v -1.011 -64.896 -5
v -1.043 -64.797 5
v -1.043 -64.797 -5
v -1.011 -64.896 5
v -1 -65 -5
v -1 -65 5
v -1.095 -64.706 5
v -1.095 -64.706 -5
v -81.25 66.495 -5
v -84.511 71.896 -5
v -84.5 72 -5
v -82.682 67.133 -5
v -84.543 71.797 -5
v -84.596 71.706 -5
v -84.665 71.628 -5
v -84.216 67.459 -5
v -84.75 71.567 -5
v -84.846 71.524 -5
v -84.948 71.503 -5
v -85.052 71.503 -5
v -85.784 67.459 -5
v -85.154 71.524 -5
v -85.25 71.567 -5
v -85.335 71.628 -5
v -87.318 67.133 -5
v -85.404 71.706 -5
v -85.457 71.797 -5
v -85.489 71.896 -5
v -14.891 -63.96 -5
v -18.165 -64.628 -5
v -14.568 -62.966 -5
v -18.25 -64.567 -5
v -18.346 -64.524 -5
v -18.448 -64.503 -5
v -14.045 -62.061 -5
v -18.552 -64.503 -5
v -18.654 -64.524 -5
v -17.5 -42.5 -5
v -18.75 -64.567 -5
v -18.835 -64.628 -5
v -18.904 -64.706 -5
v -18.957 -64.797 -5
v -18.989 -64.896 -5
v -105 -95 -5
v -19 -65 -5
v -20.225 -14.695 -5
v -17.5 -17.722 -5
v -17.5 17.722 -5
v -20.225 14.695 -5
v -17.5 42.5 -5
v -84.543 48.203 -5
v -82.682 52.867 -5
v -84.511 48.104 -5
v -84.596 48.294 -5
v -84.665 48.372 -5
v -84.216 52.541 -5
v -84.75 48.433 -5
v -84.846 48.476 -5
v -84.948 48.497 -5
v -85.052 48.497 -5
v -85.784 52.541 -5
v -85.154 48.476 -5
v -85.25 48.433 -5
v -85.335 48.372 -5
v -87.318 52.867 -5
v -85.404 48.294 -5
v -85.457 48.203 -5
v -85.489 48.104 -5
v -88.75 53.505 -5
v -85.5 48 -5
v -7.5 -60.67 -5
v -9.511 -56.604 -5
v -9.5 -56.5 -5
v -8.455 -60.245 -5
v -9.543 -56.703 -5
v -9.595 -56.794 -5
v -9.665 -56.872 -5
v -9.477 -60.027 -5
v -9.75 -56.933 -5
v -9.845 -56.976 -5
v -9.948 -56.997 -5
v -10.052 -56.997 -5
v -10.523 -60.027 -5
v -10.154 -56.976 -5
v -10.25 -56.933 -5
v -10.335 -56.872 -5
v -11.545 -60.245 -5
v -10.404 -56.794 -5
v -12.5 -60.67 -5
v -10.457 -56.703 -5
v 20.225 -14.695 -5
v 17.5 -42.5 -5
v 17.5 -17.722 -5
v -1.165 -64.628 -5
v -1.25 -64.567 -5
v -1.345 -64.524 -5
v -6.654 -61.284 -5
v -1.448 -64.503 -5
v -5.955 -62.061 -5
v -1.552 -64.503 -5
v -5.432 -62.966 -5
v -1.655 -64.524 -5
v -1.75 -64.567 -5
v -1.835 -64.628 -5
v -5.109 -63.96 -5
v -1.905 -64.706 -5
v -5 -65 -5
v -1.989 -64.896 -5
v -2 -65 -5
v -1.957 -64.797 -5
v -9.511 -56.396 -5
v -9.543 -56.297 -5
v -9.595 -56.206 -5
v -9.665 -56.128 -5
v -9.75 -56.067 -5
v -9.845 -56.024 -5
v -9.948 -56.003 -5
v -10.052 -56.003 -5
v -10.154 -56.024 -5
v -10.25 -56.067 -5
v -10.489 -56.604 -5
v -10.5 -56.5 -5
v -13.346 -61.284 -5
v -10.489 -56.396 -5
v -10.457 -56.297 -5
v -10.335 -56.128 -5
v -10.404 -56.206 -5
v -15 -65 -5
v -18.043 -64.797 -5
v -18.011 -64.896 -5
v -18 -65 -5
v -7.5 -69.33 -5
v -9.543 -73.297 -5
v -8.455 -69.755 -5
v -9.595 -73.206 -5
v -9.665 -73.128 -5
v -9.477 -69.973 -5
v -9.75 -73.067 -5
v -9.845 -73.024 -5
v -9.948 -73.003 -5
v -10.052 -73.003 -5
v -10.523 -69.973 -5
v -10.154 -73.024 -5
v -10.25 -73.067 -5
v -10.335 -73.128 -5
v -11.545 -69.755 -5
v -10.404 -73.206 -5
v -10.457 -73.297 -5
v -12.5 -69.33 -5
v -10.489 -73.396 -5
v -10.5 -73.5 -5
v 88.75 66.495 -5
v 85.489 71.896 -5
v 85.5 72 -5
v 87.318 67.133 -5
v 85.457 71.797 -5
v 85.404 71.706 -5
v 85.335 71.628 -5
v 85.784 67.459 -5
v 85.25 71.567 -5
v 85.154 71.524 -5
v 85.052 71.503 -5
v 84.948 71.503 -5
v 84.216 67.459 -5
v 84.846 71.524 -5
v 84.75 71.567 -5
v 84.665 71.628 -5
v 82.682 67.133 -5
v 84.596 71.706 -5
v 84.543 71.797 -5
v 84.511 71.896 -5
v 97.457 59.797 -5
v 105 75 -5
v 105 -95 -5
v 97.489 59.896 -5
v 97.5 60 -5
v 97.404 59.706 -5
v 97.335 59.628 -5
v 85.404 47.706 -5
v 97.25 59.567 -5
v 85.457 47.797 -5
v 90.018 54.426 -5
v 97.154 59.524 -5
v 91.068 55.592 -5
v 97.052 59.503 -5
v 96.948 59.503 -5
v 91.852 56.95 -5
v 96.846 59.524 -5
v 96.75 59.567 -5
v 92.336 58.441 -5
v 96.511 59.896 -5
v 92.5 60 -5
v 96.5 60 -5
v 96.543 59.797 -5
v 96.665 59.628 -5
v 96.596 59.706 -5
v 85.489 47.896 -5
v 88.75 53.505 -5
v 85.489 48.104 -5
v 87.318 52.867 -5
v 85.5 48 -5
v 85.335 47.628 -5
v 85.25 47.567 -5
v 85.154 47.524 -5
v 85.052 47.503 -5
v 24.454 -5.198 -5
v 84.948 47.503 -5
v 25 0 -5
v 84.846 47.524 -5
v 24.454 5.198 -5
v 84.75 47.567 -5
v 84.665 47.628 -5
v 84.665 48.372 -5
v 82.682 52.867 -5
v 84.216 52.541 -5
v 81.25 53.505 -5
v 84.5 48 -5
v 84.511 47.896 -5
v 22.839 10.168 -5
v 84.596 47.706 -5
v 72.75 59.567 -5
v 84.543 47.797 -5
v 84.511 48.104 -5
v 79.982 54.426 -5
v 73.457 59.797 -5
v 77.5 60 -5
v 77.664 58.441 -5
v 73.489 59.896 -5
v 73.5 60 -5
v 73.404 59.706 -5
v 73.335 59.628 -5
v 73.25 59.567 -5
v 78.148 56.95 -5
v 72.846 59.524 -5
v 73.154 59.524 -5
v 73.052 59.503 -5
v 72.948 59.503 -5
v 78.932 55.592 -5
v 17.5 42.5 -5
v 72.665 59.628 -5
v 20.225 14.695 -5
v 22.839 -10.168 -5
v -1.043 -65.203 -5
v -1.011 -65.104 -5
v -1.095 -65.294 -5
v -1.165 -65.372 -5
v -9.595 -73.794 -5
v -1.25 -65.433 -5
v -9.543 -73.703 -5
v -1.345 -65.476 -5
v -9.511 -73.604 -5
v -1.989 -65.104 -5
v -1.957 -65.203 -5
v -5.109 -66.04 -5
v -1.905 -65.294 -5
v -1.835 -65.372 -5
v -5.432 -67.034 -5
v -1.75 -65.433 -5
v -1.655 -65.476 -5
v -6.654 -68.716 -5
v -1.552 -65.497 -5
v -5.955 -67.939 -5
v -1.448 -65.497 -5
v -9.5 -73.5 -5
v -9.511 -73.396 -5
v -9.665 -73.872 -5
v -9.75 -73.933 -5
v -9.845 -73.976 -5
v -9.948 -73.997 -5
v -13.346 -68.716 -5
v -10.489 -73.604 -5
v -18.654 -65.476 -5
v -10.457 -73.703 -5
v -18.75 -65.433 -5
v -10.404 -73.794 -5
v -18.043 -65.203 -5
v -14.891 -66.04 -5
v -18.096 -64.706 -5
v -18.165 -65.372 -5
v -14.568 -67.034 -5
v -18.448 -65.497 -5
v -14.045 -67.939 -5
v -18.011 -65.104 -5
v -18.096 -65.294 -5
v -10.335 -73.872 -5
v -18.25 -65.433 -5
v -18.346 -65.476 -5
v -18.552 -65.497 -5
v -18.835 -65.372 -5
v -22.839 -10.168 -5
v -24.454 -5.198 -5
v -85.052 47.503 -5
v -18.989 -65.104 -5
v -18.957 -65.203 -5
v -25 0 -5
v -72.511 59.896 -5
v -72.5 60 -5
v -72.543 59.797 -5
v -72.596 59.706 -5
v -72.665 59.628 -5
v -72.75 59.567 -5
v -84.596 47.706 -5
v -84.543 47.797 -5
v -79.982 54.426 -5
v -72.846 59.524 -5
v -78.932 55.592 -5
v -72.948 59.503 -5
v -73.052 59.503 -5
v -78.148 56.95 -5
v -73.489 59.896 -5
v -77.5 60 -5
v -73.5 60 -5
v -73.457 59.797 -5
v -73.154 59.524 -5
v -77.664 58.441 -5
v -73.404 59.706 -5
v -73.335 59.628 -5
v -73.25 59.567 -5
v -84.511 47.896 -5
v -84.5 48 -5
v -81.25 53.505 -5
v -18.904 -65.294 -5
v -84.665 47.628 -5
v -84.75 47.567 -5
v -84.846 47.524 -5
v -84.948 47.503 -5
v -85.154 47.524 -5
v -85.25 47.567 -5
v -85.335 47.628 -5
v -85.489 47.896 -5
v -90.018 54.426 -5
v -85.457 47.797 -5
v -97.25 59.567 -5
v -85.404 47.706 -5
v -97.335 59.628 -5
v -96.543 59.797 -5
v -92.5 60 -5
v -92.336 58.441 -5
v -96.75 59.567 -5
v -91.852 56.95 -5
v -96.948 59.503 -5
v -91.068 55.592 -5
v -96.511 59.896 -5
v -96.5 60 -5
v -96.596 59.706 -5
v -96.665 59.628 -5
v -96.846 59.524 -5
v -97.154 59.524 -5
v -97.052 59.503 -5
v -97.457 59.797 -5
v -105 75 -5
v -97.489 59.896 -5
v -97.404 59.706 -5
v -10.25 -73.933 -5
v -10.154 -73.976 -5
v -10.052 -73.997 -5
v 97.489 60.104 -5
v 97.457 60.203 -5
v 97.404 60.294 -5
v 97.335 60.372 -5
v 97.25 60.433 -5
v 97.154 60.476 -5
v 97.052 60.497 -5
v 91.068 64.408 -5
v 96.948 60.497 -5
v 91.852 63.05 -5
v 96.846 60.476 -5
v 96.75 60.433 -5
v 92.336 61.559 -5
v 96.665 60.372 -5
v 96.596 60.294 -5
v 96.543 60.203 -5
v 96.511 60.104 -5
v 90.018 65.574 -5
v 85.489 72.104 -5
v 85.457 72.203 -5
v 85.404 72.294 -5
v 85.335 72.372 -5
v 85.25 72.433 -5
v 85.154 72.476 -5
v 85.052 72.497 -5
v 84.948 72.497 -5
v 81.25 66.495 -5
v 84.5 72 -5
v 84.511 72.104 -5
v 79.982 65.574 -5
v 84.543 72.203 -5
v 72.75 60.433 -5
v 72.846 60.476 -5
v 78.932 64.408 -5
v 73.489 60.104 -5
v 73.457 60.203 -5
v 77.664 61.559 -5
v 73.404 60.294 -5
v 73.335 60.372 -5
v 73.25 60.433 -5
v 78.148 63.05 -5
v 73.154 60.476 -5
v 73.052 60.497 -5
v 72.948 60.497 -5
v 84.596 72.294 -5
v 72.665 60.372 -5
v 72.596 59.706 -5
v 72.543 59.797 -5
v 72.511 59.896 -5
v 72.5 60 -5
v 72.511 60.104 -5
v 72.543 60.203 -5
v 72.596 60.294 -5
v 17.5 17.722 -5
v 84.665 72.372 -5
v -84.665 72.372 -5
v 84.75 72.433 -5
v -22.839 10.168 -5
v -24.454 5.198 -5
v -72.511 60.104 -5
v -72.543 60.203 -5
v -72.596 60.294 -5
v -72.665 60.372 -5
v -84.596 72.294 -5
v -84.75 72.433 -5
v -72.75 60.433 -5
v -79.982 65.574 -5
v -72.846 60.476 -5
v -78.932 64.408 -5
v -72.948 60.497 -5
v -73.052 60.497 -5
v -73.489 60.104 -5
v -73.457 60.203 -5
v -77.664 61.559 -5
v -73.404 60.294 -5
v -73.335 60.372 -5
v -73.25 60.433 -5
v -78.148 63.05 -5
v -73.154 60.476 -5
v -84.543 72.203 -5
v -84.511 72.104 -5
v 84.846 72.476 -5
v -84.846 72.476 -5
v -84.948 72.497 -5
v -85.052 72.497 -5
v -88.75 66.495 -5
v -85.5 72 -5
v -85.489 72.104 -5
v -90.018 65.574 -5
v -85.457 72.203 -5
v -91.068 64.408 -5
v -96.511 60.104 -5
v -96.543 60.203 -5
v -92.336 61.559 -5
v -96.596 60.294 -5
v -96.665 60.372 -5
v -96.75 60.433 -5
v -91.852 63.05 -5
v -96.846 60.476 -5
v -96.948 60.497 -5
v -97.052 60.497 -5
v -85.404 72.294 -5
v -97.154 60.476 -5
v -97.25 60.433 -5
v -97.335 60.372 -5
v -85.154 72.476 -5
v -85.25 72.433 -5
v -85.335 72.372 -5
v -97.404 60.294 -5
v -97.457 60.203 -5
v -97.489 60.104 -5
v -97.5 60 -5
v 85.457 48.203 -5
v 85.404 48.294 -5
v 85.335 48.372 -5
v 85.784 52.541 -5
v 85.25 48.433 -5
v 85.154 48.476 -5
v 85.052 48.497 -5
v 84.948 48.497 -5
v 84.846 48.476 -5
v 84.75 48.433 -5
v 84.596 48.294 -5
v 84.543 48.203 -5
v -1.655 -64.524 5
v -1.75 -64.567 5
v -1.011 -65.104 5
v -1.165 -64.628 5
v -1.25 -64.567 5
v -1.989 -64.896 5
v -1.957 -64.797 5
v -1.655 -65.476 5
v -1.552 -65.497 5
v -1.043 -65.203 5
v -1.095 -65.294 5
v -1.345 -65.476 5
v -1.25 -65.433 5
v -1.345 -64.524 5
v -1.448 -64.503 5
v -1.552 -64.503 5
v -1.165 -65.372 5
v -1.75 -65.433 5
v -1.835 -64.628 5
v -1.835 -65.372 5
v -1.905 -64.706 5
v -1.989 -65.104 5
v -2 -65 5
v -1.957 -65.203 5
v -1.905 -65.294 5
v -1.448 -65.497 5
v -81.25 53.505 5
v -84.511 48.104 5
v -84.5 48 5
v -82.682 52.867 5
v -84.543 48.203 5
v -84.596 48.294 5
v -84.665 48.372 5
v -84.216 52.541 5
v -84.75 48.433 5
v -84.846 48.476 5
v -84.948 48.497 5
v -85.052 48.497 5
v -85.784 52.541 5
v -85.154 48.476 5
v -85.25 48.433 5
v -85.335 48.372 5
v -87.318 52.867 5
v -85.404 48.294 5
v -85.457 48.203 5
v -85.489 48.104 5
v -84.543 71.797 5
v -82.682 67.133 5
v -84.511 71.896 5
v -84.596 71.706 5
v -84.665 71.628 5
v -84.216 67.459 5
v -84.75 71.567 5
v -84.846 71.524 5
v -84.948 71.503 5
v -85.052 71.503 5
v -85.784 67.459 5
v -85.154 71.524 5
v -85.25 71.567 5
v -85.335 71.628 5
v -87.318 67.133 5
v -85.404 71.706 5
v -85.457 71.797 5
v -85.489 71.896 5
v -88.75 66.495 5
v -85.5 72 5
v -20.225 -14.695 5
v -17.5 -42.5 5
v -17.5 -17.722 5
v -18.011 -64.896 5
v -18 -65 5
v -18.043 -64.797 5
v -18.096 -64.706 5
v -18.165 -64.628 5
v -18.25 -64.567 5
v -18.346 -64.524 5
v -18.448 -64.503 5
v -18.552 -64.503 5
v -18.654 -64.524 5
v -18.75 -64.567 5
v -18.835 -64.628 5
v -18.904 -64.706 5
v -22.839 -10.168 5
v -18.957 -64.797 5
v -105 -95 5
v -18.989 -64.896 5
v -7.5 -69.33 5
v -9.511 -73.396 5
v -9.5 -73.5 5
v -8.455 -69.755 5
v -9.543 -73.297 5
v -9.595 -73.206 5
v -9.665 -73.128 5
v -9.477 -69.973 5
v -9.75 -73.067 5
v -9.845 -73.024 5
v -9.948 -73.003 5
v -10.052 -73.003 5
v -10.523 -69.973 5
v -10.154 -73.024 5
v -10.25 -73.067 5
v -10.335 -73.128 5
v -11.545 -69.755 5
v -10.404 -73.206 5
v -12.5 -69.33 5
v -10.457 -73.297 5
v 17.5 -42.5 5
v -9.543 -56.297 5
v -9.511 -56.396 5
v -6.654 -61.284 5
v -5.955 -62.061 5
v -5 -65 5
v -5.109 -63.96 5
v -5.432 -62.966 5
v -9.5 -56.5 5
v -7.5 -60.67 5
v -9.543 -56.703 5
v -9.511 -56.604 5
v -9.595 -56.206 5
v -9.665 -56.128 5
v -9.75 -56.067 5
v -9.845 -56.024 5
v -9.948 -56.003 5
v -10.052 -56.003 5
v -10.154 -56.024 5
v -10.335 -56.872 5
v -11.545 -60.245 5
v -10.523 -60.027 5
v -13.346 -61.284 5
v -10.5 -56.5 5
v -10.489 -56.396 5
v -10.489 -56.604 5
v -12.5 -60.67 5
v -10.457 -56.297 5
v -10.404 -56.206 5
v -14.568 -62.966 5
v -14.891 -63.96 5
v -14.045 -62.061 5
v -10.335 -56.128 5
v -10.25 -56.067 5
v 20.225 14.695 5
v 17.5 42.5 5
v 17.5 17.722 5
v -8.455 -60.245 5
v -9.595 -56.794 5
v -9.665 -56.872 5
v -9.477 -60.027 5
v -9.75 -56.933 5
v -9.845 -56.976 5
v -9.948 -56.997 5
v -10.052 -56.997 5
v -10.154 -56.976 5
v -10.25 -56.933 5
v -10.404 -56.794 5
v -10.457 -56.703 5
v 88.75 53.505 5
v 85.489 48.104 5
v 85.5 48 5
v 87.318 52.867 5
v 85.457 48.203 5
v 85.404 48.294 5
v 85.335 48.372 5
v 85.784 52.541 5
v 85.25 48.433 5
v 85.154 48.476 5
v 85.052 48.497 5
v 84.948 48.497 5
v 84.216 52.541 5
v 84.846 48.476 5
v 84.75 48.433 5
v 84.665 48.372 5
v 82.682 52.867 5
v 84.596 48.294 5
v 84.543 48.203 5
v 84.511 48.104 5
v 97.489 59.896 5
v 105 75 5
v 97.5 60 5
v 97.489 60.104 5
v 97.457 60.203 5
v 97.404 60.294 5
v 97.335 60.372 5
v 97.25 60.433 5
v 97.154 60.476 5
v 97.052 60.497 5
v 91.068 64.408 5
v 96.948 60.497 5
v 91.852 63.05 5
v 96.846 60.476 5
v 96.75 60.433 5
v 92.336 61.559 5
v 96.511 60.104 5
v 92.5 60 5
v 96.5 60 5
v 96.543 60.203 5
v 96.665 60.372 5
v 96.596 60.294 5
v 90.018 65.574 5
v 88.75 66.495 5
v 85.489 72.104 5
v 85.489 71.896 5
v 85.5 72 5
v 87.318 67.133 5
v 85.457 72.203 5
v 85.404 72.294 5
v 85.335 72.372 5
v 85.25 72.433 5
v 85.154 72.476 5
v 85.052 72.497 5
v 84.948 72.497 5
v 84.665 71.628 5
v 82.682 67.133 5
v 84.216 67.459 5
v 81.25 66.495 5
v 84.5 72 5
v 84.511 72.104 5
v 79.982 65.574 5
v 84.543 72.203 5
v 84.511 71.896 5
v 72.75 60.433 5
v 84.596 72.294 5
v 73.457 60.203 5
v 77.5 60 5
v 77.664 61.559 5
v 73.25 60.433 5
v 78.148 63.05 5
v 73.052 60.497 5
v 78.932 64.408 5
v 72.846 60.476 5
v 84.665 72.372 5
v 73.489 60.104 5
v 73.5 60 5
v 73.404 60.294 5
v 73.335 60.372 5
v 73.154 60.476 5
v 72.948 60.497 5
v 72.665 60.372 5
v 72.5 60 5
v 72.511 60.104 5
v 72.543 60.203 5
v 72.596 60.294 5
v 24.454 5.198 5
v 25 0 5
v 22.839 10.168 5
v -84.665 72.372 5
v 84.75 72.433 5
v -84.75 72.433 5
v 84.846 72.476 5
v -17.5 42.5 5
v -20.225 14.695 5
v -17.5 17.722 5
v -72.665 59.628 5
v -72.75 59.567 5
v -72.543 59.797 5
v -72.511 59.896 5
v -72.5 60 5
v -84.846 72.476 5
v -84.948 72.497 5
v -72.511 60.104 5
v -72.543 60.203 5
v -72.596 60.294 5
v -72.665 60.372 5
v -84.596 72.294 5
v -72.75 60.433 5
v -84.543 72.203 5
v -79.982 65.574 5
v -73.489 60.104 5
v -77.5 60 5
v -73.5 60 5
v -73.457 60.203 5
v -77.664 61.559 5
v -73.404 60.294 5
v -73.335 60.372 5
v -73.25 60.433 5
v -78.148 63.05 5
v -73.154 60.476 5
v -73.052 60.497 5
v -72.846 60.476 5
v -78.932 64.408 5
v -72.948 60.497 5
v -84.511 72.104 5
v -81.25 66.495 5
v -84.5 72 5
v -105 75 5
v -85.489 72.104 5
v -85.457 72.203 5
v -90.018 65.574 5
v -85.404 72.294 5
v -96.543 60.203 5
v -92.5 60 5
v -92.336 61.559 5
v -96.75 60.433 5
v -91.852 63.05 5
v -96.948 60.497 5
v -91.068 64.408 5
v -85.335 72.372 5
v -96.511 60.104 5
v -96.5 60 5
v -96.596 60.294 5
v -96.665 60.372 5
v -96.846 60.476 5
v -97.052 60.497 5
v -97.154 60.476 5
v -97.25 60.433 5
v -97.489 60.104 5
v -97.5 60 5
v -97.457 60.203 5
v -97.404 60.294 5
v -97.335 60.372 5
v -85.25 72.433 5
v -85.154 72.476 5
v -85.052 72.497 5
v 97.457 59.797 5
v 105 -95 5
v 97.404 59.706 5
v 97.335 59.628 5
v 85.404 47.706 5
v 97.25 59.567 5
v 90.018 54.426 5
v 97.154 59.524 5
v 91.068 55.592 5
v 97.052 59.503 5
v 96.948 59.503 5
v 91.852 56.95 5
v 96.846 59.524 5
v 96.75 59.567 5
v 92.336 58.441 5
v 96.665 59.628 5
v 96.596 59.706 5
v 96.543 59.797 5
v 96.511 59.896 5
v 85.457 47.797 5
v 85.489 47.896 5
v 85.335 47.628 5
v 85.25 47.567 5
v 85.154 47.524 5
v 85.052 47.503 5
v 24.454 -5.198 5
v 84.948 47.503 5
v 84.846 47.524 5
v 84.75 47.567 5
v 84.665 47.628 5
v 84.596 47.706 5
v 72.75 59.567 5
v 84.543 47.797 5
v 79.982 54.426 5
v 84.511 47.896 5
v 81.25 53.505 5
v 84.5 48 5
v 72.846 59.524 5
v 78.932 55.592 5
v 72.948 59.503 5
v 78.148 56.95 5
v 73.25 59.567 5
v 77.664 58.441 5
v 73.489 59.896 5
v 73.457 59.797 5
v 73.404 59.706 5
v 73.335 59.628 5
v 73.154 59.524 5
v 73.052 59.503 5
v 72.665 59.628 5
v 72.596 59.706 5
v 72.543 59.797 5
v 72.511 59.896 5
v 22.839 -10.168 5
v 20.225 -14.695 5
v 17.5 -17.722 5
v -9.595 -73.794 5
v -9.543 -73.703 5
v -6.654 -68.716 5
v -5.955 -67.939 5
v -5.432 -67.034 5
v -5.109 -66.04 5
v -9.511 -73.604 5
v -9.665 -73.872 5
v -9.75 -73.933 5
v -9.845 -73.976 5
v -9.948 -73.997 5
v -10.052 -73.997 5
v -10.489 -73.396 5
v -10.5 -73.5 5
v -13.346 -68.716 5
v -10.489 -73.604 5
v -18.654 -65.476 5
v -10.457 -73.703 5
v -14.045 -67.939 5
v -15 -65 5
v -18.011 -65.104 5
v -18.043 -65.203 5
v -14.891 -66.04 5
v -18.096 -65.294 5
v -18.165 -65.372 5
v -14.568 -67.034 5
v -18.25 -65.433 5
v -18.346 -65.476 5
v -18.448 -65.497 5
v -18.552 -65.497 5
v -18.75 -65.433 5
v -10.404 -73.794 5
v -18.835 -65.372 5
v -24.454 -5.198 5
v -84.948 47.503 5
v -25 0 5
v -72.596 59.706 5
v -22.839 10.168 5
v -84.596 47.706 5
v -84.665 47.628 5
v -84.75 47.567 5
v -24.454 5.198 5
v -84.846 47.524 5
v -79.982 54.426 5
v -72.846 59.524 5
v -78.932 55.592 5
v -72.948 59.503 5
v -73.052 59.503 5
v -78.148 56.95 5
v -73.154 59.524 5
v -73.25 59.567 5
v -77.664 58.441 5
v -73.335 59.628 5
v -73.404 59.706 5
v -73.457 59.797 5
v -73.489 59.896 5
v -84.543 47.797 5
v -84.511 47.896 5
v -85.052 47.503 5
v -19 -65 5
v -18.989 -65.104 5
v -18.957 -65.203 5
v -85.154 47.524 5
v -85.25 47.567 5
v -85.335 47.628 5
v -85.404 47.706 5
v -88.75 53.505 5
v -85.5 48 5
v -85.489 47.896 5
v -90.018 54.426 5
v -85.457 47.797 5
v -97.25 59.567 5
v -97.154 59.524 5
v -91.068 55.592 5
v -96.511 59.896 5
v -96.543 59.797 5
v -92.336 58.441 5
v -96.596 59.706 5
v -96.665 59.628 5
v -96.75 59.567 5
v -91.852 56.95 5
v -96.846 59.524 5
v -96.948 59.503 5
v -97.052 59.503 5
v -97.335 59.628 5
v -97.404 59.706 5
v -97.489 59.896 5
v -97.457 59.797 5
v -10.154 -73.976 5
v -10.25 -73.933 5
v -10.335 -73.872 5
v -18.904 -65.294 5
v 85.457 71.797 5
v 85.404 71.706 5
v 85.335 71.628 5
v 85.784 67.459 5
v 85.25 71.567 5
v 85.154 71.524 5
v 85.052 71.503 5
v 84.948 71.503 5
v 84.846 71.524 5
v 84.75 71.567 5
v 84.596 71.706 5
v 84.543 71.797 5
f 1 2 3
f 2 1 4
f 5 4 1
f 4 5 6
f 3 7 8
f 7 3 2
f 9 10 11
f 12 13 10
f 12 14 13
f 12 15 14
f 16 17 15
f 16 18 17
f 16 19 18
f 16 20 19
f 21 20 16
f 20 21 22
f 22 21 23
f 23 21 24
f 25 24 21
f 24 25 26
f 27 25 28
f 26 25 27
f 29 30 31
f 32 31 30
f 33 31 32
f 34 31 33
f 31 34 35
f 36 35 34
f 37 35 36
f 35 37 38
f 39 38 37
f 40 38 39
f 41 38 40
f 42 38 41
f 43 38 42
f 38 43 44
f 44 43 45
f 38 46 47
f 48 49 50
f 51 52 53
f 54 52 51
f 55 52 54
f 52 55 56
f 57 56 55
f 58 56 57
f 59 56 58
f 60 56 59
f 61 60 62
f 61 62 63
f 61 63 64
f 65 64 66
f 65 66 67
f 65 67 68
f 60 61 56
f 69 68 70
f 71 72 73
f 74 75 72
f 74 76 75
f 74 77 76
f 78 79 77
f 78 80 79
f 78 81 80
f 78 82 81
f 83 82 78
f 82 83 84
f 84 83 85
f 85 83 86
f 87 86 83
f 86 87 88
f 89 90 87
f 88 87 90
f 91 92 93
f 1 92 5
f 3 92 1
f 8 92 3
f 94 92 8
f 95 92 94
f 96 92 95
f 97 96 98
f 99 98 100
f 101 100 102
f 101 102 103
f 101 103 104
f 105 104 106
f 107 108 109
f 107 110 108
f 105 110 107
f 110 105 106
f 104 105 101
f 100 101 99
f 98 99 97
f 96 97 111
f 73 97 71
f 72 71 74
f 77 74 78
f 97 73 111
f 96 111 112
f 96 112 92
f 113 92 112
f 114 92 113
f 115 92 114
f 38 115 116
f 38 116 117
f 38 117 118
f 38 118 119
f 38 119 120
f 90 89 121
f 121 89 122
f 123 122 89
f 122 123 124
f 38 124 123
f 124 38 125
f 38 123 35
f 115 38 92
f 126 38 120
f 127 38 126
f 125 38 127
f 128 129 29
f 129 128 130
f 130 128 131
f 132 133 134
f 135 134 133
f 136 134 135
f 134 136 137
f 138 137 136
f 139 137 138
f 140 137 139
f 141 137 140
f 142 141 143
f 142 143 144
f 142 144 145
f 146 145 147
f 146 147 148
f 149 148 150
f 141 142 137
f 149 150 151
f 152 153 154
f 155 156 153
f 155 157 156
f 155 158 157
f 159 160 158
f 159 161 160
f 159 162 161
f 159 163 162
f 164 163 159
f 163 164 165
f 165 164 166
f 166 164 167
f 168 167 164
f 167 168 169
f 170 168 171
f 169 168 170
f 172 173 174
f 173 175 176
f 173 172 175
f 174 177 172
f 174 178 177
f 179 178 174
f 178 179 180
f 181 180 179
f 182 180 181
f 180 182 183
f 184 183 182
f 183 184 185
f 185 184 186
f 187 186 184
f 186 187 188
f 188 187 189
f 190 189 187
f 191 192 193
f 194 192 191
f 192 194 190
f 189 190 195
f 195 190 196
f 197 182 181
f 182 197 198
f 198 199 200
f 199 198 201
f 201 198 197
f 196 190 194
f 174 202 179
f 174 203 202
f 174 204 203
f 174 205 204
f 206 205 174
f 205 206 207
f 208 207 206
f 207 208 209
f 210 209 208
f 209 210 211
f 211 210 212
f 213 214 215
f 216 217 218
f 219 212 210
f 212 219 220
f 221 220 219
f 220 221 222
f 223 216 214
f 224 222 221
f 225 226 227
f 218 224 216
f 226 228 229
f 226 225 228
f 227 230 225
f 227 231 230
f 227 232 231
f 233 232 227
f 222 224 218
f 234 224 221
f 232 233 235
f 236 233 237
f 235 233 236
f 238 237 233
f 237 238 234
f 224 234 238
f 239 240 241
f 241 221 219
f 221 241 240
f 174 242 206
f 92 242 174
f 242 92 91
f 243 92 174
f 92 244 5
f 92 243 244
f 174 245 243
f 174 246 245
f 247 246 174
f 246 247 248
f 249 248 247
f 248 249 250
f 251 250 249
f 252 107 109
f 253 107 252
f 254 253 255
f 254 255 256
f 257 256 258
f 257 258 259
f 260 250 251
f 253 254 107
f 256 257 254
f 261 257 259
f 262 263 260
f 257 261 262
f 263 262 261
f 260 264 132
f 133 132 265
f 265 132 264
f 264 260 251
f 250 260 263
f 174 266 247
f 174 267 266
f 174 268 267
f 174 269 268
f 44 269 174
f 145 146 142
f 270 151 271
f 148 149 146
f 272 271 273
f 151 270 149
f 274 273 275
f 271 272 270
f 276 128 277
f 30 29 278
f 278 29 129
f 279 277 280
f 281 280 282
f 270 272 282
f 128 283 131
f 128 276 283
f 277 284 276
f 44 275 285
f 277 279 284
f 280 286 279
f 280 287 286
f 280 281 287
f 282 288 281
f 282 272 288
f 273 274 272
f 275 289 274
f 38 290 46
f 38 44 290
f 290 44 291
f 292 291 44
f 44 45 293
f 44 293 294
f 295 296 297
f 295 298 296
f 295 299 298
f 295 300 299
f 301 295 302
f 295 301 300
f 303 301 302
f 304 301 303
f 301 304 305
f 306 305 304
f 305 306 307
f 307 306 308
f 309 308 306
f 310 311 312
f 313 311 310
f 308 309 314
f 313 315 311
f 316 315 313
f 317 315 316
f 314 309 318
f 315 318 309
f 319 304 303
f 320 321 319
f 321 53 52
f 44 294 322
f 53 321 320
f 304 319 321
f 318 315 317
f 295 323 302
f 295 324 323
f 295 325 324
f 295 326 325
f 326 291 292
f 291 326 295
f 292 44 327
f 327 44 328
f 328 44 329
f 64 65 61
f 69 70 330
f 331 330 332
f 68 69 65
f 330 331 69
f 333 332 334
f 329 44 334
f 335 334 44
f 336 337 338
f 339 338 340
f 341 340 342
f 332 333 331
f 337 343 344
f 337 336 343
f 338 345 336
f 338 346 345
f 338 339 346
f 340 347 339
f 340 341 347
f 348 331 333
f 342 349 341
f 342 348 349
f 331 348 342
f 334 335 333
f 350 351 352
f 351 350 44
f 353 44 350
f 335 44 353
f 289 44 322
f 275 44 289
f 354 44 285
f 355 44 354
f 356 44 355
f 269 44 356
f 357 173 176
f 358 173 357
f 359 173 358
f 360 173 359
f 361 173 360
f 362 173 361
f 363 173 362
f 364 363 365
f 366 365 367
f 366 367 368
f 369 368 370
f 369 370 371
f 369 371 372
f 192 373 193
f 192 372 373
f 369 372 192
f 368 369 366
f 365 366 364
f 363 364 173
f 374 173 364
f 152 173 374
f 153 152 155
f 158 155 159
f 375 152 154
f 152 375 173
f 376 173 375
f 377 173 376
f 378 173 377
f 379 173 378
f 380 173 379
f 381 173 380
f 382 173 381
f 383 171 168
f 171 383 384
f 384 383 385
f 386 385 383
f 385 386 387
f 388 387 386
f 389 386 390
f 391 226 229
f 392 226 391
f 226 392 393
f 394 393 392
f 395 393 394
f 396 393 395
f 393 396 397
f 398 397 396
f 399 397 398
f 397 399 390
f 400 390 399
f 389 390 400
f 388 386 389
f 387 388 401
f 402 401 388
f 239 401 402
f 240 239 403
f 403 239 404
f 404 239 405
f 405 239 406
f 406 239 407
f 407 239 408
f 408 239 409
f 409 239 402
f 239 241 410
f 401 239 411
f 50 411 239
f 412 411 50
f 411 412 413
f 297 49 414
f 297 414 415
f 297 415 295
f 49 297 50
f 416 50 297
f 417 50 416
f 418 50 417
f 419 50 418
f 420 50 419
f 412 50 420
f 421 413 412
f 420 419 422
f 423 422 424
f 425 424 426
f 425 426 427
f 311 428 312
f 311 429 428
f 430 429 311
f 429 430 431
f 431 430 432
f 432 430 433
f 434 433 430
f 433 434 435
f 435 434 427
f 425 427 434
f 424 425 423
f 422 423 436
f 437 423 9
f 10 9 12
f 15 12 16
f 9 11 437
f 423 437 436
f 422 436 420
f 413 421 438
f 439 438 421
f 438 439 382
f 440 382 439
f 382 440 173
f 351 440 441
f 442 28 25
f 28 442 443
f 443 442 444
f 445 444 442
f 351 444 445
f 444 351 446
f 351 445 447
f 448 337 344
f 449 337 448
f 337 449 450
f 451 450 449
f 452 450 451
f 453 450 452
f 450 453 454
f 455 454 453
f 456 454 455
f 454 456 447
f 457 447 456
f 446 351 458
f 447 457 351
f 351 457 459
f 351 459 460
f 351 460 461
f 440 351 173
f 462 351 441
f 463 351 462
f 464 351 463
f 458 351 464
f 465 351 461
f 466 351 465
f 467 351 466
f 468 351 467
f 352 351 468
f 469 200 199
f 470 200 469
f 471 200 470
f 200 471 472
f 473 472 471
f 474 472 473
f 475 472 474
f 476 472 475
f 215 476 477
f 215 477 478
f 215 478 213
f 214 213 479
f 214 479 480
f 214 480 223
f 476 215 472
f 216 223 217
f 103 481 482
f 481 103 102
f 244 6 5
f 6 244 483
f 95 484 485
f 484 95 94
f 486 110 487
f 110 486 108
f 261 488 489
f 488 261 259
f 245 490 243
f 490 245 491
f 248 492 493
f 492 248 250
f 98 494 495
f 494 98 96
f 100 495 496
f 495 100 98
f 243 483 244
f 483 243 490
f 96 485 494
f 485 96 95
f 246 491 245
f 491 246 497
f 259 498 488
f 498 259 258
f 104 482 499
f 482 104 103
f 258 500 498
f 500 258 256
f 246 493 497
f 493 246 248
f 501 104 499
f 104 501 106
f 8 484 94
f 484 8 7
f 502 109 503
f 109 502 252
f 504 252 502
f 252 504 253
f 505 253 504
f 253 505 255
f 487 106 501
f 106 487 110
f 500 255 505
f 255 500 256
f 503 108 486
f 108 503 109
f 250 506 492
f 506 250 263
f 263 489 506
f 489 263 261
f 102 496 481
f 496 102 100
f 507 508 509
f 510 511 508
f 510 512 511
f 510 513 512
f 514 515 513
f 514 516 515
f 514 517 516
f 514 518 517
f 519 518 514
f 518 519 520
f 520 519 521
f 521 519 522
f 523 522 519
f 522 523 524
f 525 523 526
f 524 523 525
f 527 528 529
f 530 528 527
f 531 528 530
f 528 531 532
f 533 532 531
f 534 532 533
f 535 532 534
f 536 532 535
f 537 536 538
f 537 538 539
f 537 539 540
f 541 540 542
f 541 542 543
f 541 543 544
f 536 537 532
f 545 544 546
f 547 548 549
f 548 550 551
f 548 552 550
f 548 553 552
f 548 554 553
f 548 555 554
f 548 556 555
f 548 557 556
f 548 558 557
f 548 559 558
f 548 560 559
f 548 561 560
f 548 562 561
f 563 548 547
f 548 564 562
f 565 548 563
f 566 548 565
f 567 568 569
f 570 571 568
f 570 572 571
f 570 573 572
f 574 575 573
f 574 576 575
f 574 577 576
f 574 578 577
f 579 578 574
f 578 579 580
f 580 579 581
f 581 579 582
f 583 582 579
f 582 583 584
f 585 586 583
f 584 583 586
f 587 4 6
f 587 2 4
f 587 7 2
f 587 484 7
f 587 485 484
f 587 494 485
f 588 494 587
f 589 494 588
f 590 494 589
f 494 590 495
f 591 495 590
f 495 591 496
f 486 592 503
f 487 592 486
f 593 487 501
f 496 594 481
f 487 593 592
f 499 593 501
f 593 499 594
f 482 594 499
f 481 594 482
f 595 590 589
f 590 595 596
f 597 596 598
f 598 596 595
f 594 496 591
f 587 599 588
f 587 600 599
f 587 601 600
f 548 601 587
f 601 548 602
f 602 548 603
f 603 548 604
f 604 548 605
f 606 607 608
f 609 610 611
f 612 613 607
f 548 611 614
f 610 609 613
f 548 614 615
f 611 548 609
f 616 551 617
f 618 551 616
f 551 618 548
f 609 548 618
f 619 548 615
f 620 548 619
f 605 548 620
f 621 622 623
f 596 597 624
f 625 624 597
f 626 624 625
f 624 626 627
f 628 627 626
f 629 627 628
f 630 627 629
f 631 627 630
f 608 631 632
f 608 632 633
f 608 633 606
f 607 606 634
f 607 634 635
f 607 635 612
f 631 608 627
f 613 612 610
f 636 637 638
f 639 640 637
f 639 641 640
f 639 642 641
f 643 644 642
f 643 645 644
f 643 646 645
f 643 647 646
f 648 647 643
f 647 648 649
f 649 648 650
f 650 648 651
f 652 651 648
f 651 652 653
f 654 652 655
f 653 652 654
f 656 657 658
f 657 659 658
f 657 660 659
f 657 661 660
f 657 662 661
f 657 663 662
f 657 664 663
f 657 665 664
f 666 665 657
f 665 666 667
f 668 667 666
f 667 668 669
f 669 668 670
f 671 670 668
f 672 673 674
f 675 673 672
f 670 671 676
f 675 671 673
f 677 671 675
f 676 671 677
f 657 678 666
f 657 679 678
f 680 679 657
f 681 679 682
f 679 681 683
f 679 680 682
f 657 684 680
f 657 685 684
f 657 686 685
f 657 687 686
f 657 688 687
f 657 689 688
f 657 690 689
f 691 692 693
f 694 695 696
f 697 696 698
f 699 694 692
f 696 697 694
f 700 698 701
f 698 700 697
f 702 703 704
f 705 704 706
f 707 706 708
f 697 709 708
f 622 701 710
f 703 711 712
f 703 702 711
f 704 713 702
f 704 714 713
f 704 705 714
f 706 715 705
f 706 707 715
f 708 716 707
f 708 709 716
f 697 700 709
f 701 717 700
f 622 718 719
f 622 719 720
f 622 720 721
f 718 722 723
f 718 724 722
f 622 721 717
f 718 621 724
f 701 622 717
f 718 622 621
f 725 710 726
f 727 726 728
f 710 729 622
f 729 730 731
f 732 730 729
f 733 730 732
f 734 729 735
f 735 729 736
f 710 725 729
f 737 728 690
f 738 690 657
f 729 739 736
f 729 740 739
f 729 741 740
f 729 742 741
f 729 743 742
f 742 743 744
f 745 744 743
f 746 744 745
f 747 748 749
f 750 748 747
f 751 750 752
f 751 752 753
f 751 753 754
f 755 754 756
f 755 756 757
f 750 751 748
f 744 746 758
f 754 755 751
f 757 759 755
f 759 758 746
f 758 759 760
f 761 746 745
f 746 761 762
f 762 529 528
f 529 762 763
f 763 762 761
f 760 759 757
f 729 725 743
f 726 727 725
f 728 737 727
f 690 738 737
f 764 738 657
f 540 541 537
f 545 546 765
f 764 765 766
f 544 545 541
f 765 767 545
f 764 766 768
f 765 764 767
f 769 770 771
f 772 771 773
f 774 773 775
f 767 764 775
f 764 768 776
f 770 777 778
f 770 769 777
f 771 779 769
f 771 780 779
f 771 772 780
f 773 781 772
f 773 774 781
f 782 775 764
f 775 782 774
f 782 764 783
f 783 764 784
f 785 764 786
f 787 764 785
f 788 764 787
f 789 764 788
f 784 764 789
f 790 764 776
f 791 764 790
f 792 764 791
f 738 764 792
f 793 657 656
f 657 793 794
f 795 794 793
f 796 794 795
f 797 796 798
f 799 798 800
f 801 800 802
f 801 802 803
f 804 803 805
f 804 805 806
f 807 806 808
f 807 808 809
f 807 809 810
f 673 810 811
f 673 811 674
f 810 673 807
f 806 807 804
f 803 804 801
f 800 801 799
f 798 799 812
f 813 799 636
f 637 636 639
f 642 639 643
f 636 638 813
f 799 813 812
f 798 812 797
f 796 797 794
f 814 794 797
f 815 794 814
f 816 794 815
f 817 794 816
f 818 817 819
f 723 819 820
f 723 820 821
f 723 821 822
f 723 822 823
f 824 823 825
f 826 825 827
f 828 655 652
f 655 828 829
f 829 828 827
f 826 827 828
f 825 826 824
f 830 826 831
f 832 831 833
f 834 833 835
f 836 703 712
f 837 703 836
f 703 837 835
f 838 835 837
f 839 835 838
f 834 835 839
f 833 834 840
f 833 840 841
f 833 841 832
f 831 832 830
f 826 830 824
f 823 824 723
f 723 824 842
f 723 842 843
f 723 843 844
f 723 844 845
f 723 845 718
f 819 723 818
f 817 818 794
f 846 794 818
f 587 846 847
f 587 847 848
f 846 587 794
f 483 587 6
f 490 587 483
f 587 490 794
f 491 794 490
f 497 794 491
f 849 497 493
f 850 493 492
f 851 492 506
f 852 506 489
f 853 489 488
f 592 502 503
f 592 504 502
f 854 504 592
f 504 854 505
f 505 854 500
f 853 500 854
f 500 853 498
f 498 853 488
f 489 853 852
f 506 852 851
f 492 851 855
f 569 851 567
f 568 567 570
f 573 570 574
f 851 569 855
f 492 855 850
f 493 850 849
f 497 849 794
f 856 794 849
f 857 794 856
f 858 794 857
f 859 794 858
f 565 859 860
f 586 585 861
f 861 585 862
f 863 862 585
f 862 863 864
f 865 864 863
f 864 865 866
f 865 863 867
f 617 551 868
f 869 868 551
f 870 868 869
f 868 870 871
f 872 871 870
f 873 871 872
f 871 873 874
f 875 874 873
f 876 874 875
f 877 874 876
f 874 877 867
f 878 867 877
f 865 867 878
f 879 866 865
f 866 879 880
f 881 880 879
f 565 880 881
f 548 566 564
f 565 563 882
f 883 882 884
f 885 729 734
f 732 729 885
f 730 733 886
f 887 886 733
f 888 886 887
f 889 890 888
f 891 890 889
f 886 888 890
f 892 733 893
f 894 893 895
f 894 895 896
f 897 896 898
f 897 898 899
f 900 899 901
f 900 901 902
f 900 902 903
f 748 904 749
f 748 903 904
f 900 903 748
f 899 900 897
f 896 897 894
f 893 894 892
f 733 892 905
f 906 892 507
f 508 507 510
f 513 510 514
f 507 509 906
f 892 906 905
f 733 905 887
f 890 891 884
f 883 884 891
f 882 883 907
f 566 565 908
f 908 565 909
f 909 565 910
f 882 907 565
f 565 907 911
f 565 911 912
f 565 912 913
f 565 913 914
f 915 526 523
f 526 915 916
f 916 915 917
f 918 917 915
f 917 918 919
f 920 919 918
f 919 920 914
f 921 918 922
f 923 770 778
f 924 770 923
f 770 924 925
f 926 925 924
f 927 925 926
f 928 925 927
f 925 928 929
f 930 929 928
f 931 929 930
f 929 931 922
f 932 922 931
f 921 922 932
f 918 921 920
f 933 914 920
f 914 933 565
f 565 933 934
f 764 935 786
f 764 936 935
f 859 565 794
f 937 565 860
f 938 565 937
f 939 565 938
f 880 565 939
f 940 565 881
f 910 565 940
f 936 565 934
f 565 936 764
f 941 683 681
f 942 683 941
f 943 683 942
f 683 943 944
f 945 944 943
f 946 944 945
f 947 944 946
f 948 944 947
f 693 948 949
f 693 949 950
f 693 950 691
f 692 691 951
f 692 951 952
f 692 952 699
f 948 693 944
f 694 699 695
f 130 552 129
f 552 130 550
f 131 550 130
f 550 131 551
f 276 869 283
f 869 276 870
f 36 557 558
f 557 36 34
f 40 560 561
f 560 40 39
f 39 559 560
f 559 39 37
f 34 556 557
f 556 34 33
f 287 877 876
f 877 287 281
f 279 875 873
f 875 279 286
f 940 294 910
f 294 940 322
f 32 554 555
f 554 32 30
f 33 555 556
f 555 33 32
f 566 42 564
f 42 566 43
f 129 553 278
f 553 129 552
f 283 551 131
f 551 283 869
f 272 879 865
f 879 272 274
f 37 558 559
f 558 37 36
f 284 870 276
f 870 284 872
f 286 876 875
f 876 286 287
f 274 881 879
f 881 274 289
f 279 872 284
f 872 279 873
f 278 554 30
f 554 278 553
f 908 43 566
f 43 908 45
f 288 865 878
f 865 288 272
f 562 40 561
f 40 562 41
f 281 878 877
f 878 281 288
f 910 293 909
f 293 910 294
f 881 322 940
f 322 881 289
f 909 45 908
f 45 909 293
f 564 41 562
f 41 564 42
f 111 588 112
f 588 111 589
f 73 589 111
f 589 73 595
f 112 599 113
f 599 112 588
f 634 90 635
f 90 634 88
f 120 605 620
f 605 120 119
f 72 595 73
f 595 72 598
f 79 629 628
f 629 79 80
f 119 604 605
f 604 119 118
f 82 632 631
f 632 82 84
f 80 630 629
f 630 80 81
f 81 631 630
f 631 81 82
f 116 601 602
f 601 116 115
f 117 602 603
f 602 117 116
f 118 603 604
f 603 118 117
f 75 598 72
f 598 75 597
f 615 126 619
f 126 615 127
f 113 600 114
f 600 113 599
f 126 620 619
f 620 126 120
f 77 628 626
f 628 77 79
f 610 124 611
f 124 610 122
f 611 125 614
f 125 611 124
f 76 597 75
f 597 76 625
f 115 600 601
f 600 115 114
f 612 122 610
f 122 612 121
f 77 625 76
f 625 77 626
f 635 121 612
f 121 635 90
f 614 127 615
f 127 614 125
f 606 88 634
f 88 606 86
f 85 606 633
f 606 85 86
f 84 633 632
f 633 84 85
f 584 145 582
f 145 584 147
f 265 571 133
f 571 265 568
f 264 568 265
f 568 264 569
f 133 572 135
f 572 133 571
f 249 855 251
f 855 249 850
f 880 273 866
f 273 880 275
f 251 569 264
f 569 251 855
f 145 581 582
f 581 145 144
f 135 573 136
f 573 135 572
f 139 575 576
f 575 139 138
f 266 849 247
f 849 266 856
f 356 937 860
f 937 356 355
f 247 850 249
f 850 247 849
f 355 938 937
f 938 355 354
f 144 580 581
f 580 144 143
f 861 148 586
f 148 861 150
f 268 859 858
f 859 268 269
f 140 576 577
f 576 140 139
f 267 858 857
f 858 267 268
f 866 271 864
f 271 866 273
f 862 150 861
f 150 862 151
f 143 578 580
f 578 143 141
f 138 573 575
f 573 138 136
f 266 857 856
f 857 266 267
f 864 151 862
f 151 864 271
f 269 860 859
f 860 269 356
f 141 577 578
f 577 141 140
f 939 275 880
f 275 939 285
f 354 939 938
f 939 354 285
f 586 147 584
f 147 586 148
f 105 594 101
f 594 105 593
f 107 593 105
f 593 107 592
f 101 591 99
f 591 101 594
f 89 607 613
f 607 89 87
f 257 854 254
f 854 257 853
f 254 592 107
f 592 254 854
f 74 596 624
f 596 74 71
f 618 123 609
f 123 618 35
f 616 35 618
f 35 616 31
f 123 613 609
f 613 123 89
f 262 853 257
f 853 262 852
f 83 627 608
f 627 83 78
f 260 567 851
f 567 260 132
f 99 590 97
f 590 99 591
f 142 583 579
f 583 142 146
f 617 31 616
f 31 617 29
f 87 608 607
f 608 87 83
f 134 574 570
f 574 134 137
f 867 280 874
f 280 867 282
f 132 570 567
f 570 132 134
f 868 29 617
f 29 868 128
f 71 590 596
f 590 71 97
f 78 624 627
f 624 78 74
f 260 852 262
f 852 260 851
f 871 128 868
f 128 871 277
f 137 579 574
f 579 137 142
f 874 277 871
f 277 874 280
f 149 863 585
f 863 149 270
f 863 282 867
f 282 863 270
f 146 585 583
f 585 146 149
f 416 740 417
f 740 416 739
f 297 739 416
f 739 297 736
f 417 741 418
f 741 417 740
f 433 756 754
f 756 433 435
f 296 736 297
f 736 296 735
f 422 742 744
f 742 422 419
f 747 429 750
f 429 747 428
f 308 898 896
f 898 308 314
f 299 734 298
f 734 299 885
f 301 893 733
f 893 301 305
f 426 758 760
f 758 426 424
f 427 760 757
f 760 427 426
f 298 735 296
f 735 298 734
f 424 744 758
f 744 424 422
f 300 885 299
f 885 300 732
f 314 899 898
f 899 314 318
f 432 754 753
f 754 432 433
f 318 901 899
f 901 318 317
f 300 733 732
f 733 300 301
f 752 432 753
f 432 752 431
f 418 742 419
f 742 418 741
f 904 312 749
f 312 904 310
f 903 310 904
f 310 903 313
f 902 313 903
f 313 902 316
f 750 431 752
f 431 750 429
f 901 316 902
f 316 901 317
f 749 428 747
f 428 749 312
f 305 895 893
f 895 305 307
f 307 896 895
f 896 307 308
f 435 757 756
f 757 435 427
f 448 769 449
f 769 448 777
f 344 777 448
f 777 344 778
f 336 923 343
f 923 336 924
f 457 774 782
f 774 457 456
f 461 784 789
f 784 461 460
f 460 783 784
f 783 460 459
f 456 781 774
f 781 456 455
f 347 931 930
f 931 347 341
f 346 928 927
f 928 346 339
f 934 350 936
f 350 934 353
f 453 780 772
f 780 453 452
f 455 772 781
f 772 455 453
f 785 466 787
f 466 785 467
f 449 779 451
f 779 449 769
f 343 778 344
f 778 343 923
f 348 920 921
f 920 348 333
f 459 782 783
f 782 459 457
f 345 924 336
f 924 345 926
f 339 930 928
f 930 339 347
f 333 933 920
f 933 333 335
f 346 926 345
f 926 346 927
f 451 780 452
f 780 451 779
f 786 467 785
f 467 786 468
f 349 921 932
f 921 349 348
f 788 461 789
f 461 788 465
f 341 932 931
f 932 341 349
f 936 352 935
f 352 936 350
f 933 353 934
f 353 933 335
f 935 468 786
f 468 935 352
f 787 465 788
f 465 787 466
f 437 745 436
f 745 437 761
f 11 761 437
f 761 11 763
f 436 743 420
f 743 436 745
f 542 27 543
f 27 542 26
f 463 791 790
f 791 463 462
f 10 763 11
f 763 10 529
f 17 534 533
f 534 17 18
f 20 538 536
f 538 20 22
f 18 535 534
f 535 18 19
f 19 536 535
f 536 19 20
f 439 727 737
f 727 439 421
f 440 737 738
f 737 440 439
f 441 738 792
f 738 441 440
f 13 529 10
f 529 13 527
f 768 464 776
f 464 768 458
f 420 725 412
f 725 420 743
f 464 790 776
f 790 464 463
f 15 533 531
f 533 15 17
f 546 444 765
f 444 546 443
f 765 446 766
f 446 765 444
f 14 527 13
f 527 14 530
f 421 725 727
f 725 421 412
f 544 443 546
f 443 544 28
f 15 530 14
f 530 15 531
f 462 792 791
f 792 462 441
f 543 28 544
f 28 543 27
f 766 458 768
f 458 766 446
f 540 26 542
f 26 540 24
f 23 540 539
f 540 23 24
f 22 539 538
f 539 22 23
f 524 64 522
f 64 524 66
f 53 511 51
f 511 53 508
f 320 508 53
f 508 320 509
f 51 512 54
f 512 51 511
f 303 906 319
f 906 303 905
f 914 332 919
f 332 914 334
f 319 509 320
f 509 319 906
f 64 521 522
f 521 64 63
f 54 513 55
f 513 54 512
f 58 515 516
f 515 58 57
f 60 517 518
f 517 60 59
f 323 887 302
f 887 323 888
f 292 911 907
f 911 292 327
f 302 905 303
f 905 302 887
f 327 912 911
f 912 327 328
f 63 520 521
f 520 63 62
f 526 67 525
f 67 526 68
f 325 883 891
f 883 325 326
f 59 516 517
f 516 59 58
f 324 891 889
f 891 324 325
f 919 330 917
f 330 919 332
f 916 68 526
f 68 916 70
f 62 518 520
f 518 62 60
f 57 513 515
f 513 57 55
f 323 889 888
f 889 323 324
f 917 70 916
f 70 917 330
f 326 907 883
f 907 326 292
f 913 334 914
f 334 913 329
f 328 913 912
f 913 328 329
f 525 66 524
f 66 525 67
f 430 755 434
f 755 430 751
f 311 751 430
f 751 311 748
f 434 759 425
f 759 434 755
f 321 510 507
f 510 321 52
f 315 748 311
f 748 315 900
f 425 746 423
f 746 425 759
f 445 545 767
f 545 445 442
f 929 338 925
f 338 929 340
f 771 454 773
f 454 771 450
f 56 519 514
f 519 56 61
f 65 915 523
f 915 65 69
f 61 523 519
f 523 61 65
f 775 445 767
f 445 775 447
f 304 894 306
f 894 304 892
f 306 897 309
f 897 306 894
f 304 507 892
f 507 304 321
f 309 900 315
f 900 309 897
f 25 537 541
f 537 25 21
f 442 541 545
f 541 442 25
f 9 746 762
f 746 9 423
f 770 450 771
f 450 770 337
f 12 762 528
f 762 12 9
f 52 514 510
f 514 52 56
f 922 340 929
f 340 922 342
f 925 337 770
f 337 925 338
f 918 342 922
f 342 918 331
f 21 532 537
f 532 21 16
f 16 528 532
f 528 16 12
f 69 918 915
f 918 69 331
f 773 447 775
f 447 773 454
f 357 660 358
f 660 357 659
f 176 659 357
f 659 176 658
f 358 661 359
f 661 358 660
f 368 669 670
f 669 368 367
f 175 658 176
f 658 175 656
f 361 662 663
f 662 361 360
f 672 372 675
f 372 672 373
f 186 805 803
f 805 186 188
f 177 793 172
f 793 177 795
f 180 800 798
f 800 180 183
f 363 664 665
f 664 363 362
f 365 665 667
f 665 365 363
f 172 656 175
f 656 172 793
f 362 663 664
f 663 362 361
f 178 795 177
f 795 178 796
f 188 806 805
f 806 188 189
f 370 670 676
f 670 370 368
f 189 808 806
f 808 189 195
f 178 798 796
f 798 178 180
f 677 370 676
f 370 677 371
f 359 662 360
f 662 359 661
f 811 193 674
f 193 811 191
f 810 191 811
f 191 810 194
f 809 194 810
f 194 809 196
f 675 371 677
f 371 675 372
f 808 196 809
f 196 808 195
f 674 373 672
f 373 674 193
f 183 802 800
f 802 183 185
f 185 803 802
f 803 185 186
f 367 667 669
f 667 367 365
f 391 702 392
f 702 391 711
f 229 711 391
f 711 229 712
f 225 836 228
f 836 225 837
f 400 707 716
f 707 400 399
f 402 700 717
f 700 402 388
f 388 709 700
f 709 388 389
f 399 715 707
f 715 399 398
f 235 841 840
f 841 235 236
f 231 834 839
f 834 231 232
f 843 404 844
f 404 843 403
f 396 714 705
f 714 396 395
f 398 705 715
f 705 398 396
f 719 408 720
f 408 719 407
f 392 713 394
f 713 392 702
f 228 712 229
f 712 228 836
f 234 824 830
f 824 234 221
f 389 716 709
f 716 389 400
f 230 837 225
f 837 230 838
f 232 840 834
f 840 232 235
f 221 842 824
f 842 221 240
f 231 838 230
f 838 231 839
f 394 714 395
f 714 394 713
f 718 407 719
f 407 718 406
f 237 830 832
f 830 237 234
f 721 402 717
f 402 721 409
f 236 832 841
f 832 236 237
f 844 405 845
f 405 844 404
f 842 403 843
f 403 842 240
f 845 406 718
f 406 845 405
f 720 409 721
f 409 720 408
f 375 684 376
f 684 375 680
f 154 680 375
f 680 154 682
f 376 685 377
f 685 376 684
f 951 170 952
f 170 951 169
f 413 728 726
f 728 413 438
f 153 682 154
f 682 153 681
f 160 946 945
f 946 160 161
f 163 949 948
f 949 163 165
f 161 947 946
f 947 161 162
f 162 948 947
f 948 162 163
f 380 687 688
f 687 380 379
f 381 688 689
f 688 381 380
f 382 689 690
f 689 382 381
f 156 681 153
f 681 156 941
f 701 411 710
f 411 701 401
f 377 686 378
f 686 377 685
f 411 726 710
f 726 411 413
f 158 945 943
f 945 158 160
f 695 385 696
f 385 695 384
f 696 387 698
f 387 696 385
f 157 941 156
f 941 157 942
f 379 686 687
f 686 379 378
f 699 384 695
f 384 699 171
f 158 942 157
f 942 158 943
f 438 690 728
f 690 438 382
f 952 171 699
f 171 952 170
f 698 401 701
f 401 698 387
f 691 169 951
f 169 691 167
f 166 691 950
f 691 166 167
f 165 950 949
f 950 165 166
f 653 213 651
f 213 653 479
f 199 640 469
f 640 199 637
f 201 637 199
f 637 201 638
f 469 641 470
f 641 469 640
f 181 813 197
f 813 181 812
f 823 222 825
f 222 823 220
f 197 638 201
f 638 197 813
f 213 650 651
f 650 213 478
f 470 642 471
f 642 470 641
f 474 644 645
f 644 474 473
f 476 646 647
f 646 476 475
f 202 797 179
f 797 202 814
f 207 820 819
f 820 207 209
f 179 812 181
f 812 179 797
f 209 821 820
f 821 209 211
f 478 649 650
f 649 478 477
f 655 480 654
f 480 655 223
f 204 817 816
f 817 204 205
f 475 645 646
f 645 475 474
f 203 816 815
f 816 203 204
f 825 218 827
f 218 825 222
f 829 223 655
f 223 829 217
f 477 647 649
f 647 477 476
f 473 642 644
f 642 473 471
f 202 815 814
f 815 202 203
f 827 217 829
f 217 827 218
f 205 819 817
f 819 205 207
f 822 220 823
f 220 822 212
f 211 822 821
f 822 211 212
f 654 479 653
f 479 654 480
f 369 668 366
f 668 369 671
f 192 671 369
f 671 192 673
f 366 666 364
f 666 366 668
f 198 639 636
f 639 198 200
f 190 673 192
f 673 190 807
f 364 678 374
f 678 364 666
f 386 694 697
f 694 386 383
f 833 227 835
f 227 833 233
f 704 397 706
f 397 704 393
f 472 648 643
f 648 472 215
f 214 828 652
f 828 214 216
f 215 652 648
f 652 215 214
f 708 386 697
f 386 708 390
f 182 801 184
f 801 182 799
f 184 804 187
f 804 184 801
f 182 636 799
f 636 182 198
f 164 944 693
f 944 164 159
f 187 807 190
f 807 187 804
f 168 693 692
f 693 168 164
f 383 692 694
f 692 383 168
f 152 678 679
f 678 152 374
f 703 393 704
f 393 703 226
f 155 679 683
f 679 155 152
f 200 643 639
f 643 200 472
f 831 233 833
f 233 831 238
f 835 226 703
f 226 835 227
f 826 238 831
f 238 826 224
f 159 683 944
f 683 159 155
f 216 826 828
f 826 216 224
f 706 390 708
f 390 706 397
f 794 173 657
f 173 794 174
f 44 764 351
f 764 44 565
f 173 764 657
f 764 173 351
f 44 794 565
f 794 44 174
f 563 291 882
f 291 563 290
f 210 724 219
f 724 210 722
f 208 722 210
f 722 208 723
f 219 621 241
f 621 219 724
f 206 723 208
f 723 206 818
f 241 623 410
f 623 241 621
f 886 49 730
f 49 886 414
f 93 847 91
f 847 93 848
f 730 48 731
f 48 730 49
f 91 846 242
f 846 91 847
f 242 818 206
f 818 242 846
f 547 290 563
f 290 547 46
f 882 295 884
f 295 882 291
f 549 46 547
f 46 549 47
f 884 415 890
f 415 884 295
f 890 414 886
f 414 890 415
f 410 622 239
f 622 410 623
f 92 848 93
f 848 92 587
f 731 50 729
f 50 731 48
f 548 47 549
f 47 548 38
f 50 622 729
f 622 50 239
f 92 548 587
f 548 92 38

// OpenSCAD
// Multi_Tissue_Recording Stage v1
// Jack F. Murphy <me@jackmurphy.nyc>
// https://github.com/teammurphy/Multi_Tissue_CAD

// Smoothness
$fn = 30;

// Stage Dimensions
stage_len=210;
stage_width=170;
stage_thickness=10;

// Hole Dimensions
hole_diam=50;
hole_len=85;
hole_width=30;
lin_bearing=15;
threaded=10;
pilot_rad=1;

difference(){
  translate([0, -10, 0])  
    cube([stage_len, stage_width, stage_thickness], center=true);

  // Circular Gap
  translate([0, 25, 0])
    cylinder(d=hole_diam, h=stage_thickness, center=true);

  // Rectangular Gap
  cube([hole_width, hole_len, stage_thickness], center=true);

  // Threaded Hole
  translate([-10, -65, 0]){
    cylinder(d=threaded, h=stage_thickness, center=true);
    pilot_holes(8.5);
  }

  // Linear Bearing Holes
  translate([-85, 60, 0]) {
    cylinder(d=lin_bearing, h=stage_thickness, center=true);
    pilot_holes(12);
  }
  translate([85, 60, 0]) {
    cylinder(d=lin_bearing, h=stage_thickness, center=true);
    pilot_holes(12);
  }
}

// Create 4 pilot holes evenly spaced around the hole.
module pilot_holes(radius){
  translate([radius, 0, 0])
    cylinder(d=pilot_rad, h=stage_thickness, center=true);
  translate([-1*radius, 0, 0])
    cylinder(d=pilot_rad, h=stage_thickness, center=true);
  translate([0, radius, 0])
    cylinder(d=pilot_rad, h=stage_thickness, center=true);
  translate([0, -1*radius, 0])
    cylinder(d=pilot_rad, h=stage_thickness, center=true);
}
